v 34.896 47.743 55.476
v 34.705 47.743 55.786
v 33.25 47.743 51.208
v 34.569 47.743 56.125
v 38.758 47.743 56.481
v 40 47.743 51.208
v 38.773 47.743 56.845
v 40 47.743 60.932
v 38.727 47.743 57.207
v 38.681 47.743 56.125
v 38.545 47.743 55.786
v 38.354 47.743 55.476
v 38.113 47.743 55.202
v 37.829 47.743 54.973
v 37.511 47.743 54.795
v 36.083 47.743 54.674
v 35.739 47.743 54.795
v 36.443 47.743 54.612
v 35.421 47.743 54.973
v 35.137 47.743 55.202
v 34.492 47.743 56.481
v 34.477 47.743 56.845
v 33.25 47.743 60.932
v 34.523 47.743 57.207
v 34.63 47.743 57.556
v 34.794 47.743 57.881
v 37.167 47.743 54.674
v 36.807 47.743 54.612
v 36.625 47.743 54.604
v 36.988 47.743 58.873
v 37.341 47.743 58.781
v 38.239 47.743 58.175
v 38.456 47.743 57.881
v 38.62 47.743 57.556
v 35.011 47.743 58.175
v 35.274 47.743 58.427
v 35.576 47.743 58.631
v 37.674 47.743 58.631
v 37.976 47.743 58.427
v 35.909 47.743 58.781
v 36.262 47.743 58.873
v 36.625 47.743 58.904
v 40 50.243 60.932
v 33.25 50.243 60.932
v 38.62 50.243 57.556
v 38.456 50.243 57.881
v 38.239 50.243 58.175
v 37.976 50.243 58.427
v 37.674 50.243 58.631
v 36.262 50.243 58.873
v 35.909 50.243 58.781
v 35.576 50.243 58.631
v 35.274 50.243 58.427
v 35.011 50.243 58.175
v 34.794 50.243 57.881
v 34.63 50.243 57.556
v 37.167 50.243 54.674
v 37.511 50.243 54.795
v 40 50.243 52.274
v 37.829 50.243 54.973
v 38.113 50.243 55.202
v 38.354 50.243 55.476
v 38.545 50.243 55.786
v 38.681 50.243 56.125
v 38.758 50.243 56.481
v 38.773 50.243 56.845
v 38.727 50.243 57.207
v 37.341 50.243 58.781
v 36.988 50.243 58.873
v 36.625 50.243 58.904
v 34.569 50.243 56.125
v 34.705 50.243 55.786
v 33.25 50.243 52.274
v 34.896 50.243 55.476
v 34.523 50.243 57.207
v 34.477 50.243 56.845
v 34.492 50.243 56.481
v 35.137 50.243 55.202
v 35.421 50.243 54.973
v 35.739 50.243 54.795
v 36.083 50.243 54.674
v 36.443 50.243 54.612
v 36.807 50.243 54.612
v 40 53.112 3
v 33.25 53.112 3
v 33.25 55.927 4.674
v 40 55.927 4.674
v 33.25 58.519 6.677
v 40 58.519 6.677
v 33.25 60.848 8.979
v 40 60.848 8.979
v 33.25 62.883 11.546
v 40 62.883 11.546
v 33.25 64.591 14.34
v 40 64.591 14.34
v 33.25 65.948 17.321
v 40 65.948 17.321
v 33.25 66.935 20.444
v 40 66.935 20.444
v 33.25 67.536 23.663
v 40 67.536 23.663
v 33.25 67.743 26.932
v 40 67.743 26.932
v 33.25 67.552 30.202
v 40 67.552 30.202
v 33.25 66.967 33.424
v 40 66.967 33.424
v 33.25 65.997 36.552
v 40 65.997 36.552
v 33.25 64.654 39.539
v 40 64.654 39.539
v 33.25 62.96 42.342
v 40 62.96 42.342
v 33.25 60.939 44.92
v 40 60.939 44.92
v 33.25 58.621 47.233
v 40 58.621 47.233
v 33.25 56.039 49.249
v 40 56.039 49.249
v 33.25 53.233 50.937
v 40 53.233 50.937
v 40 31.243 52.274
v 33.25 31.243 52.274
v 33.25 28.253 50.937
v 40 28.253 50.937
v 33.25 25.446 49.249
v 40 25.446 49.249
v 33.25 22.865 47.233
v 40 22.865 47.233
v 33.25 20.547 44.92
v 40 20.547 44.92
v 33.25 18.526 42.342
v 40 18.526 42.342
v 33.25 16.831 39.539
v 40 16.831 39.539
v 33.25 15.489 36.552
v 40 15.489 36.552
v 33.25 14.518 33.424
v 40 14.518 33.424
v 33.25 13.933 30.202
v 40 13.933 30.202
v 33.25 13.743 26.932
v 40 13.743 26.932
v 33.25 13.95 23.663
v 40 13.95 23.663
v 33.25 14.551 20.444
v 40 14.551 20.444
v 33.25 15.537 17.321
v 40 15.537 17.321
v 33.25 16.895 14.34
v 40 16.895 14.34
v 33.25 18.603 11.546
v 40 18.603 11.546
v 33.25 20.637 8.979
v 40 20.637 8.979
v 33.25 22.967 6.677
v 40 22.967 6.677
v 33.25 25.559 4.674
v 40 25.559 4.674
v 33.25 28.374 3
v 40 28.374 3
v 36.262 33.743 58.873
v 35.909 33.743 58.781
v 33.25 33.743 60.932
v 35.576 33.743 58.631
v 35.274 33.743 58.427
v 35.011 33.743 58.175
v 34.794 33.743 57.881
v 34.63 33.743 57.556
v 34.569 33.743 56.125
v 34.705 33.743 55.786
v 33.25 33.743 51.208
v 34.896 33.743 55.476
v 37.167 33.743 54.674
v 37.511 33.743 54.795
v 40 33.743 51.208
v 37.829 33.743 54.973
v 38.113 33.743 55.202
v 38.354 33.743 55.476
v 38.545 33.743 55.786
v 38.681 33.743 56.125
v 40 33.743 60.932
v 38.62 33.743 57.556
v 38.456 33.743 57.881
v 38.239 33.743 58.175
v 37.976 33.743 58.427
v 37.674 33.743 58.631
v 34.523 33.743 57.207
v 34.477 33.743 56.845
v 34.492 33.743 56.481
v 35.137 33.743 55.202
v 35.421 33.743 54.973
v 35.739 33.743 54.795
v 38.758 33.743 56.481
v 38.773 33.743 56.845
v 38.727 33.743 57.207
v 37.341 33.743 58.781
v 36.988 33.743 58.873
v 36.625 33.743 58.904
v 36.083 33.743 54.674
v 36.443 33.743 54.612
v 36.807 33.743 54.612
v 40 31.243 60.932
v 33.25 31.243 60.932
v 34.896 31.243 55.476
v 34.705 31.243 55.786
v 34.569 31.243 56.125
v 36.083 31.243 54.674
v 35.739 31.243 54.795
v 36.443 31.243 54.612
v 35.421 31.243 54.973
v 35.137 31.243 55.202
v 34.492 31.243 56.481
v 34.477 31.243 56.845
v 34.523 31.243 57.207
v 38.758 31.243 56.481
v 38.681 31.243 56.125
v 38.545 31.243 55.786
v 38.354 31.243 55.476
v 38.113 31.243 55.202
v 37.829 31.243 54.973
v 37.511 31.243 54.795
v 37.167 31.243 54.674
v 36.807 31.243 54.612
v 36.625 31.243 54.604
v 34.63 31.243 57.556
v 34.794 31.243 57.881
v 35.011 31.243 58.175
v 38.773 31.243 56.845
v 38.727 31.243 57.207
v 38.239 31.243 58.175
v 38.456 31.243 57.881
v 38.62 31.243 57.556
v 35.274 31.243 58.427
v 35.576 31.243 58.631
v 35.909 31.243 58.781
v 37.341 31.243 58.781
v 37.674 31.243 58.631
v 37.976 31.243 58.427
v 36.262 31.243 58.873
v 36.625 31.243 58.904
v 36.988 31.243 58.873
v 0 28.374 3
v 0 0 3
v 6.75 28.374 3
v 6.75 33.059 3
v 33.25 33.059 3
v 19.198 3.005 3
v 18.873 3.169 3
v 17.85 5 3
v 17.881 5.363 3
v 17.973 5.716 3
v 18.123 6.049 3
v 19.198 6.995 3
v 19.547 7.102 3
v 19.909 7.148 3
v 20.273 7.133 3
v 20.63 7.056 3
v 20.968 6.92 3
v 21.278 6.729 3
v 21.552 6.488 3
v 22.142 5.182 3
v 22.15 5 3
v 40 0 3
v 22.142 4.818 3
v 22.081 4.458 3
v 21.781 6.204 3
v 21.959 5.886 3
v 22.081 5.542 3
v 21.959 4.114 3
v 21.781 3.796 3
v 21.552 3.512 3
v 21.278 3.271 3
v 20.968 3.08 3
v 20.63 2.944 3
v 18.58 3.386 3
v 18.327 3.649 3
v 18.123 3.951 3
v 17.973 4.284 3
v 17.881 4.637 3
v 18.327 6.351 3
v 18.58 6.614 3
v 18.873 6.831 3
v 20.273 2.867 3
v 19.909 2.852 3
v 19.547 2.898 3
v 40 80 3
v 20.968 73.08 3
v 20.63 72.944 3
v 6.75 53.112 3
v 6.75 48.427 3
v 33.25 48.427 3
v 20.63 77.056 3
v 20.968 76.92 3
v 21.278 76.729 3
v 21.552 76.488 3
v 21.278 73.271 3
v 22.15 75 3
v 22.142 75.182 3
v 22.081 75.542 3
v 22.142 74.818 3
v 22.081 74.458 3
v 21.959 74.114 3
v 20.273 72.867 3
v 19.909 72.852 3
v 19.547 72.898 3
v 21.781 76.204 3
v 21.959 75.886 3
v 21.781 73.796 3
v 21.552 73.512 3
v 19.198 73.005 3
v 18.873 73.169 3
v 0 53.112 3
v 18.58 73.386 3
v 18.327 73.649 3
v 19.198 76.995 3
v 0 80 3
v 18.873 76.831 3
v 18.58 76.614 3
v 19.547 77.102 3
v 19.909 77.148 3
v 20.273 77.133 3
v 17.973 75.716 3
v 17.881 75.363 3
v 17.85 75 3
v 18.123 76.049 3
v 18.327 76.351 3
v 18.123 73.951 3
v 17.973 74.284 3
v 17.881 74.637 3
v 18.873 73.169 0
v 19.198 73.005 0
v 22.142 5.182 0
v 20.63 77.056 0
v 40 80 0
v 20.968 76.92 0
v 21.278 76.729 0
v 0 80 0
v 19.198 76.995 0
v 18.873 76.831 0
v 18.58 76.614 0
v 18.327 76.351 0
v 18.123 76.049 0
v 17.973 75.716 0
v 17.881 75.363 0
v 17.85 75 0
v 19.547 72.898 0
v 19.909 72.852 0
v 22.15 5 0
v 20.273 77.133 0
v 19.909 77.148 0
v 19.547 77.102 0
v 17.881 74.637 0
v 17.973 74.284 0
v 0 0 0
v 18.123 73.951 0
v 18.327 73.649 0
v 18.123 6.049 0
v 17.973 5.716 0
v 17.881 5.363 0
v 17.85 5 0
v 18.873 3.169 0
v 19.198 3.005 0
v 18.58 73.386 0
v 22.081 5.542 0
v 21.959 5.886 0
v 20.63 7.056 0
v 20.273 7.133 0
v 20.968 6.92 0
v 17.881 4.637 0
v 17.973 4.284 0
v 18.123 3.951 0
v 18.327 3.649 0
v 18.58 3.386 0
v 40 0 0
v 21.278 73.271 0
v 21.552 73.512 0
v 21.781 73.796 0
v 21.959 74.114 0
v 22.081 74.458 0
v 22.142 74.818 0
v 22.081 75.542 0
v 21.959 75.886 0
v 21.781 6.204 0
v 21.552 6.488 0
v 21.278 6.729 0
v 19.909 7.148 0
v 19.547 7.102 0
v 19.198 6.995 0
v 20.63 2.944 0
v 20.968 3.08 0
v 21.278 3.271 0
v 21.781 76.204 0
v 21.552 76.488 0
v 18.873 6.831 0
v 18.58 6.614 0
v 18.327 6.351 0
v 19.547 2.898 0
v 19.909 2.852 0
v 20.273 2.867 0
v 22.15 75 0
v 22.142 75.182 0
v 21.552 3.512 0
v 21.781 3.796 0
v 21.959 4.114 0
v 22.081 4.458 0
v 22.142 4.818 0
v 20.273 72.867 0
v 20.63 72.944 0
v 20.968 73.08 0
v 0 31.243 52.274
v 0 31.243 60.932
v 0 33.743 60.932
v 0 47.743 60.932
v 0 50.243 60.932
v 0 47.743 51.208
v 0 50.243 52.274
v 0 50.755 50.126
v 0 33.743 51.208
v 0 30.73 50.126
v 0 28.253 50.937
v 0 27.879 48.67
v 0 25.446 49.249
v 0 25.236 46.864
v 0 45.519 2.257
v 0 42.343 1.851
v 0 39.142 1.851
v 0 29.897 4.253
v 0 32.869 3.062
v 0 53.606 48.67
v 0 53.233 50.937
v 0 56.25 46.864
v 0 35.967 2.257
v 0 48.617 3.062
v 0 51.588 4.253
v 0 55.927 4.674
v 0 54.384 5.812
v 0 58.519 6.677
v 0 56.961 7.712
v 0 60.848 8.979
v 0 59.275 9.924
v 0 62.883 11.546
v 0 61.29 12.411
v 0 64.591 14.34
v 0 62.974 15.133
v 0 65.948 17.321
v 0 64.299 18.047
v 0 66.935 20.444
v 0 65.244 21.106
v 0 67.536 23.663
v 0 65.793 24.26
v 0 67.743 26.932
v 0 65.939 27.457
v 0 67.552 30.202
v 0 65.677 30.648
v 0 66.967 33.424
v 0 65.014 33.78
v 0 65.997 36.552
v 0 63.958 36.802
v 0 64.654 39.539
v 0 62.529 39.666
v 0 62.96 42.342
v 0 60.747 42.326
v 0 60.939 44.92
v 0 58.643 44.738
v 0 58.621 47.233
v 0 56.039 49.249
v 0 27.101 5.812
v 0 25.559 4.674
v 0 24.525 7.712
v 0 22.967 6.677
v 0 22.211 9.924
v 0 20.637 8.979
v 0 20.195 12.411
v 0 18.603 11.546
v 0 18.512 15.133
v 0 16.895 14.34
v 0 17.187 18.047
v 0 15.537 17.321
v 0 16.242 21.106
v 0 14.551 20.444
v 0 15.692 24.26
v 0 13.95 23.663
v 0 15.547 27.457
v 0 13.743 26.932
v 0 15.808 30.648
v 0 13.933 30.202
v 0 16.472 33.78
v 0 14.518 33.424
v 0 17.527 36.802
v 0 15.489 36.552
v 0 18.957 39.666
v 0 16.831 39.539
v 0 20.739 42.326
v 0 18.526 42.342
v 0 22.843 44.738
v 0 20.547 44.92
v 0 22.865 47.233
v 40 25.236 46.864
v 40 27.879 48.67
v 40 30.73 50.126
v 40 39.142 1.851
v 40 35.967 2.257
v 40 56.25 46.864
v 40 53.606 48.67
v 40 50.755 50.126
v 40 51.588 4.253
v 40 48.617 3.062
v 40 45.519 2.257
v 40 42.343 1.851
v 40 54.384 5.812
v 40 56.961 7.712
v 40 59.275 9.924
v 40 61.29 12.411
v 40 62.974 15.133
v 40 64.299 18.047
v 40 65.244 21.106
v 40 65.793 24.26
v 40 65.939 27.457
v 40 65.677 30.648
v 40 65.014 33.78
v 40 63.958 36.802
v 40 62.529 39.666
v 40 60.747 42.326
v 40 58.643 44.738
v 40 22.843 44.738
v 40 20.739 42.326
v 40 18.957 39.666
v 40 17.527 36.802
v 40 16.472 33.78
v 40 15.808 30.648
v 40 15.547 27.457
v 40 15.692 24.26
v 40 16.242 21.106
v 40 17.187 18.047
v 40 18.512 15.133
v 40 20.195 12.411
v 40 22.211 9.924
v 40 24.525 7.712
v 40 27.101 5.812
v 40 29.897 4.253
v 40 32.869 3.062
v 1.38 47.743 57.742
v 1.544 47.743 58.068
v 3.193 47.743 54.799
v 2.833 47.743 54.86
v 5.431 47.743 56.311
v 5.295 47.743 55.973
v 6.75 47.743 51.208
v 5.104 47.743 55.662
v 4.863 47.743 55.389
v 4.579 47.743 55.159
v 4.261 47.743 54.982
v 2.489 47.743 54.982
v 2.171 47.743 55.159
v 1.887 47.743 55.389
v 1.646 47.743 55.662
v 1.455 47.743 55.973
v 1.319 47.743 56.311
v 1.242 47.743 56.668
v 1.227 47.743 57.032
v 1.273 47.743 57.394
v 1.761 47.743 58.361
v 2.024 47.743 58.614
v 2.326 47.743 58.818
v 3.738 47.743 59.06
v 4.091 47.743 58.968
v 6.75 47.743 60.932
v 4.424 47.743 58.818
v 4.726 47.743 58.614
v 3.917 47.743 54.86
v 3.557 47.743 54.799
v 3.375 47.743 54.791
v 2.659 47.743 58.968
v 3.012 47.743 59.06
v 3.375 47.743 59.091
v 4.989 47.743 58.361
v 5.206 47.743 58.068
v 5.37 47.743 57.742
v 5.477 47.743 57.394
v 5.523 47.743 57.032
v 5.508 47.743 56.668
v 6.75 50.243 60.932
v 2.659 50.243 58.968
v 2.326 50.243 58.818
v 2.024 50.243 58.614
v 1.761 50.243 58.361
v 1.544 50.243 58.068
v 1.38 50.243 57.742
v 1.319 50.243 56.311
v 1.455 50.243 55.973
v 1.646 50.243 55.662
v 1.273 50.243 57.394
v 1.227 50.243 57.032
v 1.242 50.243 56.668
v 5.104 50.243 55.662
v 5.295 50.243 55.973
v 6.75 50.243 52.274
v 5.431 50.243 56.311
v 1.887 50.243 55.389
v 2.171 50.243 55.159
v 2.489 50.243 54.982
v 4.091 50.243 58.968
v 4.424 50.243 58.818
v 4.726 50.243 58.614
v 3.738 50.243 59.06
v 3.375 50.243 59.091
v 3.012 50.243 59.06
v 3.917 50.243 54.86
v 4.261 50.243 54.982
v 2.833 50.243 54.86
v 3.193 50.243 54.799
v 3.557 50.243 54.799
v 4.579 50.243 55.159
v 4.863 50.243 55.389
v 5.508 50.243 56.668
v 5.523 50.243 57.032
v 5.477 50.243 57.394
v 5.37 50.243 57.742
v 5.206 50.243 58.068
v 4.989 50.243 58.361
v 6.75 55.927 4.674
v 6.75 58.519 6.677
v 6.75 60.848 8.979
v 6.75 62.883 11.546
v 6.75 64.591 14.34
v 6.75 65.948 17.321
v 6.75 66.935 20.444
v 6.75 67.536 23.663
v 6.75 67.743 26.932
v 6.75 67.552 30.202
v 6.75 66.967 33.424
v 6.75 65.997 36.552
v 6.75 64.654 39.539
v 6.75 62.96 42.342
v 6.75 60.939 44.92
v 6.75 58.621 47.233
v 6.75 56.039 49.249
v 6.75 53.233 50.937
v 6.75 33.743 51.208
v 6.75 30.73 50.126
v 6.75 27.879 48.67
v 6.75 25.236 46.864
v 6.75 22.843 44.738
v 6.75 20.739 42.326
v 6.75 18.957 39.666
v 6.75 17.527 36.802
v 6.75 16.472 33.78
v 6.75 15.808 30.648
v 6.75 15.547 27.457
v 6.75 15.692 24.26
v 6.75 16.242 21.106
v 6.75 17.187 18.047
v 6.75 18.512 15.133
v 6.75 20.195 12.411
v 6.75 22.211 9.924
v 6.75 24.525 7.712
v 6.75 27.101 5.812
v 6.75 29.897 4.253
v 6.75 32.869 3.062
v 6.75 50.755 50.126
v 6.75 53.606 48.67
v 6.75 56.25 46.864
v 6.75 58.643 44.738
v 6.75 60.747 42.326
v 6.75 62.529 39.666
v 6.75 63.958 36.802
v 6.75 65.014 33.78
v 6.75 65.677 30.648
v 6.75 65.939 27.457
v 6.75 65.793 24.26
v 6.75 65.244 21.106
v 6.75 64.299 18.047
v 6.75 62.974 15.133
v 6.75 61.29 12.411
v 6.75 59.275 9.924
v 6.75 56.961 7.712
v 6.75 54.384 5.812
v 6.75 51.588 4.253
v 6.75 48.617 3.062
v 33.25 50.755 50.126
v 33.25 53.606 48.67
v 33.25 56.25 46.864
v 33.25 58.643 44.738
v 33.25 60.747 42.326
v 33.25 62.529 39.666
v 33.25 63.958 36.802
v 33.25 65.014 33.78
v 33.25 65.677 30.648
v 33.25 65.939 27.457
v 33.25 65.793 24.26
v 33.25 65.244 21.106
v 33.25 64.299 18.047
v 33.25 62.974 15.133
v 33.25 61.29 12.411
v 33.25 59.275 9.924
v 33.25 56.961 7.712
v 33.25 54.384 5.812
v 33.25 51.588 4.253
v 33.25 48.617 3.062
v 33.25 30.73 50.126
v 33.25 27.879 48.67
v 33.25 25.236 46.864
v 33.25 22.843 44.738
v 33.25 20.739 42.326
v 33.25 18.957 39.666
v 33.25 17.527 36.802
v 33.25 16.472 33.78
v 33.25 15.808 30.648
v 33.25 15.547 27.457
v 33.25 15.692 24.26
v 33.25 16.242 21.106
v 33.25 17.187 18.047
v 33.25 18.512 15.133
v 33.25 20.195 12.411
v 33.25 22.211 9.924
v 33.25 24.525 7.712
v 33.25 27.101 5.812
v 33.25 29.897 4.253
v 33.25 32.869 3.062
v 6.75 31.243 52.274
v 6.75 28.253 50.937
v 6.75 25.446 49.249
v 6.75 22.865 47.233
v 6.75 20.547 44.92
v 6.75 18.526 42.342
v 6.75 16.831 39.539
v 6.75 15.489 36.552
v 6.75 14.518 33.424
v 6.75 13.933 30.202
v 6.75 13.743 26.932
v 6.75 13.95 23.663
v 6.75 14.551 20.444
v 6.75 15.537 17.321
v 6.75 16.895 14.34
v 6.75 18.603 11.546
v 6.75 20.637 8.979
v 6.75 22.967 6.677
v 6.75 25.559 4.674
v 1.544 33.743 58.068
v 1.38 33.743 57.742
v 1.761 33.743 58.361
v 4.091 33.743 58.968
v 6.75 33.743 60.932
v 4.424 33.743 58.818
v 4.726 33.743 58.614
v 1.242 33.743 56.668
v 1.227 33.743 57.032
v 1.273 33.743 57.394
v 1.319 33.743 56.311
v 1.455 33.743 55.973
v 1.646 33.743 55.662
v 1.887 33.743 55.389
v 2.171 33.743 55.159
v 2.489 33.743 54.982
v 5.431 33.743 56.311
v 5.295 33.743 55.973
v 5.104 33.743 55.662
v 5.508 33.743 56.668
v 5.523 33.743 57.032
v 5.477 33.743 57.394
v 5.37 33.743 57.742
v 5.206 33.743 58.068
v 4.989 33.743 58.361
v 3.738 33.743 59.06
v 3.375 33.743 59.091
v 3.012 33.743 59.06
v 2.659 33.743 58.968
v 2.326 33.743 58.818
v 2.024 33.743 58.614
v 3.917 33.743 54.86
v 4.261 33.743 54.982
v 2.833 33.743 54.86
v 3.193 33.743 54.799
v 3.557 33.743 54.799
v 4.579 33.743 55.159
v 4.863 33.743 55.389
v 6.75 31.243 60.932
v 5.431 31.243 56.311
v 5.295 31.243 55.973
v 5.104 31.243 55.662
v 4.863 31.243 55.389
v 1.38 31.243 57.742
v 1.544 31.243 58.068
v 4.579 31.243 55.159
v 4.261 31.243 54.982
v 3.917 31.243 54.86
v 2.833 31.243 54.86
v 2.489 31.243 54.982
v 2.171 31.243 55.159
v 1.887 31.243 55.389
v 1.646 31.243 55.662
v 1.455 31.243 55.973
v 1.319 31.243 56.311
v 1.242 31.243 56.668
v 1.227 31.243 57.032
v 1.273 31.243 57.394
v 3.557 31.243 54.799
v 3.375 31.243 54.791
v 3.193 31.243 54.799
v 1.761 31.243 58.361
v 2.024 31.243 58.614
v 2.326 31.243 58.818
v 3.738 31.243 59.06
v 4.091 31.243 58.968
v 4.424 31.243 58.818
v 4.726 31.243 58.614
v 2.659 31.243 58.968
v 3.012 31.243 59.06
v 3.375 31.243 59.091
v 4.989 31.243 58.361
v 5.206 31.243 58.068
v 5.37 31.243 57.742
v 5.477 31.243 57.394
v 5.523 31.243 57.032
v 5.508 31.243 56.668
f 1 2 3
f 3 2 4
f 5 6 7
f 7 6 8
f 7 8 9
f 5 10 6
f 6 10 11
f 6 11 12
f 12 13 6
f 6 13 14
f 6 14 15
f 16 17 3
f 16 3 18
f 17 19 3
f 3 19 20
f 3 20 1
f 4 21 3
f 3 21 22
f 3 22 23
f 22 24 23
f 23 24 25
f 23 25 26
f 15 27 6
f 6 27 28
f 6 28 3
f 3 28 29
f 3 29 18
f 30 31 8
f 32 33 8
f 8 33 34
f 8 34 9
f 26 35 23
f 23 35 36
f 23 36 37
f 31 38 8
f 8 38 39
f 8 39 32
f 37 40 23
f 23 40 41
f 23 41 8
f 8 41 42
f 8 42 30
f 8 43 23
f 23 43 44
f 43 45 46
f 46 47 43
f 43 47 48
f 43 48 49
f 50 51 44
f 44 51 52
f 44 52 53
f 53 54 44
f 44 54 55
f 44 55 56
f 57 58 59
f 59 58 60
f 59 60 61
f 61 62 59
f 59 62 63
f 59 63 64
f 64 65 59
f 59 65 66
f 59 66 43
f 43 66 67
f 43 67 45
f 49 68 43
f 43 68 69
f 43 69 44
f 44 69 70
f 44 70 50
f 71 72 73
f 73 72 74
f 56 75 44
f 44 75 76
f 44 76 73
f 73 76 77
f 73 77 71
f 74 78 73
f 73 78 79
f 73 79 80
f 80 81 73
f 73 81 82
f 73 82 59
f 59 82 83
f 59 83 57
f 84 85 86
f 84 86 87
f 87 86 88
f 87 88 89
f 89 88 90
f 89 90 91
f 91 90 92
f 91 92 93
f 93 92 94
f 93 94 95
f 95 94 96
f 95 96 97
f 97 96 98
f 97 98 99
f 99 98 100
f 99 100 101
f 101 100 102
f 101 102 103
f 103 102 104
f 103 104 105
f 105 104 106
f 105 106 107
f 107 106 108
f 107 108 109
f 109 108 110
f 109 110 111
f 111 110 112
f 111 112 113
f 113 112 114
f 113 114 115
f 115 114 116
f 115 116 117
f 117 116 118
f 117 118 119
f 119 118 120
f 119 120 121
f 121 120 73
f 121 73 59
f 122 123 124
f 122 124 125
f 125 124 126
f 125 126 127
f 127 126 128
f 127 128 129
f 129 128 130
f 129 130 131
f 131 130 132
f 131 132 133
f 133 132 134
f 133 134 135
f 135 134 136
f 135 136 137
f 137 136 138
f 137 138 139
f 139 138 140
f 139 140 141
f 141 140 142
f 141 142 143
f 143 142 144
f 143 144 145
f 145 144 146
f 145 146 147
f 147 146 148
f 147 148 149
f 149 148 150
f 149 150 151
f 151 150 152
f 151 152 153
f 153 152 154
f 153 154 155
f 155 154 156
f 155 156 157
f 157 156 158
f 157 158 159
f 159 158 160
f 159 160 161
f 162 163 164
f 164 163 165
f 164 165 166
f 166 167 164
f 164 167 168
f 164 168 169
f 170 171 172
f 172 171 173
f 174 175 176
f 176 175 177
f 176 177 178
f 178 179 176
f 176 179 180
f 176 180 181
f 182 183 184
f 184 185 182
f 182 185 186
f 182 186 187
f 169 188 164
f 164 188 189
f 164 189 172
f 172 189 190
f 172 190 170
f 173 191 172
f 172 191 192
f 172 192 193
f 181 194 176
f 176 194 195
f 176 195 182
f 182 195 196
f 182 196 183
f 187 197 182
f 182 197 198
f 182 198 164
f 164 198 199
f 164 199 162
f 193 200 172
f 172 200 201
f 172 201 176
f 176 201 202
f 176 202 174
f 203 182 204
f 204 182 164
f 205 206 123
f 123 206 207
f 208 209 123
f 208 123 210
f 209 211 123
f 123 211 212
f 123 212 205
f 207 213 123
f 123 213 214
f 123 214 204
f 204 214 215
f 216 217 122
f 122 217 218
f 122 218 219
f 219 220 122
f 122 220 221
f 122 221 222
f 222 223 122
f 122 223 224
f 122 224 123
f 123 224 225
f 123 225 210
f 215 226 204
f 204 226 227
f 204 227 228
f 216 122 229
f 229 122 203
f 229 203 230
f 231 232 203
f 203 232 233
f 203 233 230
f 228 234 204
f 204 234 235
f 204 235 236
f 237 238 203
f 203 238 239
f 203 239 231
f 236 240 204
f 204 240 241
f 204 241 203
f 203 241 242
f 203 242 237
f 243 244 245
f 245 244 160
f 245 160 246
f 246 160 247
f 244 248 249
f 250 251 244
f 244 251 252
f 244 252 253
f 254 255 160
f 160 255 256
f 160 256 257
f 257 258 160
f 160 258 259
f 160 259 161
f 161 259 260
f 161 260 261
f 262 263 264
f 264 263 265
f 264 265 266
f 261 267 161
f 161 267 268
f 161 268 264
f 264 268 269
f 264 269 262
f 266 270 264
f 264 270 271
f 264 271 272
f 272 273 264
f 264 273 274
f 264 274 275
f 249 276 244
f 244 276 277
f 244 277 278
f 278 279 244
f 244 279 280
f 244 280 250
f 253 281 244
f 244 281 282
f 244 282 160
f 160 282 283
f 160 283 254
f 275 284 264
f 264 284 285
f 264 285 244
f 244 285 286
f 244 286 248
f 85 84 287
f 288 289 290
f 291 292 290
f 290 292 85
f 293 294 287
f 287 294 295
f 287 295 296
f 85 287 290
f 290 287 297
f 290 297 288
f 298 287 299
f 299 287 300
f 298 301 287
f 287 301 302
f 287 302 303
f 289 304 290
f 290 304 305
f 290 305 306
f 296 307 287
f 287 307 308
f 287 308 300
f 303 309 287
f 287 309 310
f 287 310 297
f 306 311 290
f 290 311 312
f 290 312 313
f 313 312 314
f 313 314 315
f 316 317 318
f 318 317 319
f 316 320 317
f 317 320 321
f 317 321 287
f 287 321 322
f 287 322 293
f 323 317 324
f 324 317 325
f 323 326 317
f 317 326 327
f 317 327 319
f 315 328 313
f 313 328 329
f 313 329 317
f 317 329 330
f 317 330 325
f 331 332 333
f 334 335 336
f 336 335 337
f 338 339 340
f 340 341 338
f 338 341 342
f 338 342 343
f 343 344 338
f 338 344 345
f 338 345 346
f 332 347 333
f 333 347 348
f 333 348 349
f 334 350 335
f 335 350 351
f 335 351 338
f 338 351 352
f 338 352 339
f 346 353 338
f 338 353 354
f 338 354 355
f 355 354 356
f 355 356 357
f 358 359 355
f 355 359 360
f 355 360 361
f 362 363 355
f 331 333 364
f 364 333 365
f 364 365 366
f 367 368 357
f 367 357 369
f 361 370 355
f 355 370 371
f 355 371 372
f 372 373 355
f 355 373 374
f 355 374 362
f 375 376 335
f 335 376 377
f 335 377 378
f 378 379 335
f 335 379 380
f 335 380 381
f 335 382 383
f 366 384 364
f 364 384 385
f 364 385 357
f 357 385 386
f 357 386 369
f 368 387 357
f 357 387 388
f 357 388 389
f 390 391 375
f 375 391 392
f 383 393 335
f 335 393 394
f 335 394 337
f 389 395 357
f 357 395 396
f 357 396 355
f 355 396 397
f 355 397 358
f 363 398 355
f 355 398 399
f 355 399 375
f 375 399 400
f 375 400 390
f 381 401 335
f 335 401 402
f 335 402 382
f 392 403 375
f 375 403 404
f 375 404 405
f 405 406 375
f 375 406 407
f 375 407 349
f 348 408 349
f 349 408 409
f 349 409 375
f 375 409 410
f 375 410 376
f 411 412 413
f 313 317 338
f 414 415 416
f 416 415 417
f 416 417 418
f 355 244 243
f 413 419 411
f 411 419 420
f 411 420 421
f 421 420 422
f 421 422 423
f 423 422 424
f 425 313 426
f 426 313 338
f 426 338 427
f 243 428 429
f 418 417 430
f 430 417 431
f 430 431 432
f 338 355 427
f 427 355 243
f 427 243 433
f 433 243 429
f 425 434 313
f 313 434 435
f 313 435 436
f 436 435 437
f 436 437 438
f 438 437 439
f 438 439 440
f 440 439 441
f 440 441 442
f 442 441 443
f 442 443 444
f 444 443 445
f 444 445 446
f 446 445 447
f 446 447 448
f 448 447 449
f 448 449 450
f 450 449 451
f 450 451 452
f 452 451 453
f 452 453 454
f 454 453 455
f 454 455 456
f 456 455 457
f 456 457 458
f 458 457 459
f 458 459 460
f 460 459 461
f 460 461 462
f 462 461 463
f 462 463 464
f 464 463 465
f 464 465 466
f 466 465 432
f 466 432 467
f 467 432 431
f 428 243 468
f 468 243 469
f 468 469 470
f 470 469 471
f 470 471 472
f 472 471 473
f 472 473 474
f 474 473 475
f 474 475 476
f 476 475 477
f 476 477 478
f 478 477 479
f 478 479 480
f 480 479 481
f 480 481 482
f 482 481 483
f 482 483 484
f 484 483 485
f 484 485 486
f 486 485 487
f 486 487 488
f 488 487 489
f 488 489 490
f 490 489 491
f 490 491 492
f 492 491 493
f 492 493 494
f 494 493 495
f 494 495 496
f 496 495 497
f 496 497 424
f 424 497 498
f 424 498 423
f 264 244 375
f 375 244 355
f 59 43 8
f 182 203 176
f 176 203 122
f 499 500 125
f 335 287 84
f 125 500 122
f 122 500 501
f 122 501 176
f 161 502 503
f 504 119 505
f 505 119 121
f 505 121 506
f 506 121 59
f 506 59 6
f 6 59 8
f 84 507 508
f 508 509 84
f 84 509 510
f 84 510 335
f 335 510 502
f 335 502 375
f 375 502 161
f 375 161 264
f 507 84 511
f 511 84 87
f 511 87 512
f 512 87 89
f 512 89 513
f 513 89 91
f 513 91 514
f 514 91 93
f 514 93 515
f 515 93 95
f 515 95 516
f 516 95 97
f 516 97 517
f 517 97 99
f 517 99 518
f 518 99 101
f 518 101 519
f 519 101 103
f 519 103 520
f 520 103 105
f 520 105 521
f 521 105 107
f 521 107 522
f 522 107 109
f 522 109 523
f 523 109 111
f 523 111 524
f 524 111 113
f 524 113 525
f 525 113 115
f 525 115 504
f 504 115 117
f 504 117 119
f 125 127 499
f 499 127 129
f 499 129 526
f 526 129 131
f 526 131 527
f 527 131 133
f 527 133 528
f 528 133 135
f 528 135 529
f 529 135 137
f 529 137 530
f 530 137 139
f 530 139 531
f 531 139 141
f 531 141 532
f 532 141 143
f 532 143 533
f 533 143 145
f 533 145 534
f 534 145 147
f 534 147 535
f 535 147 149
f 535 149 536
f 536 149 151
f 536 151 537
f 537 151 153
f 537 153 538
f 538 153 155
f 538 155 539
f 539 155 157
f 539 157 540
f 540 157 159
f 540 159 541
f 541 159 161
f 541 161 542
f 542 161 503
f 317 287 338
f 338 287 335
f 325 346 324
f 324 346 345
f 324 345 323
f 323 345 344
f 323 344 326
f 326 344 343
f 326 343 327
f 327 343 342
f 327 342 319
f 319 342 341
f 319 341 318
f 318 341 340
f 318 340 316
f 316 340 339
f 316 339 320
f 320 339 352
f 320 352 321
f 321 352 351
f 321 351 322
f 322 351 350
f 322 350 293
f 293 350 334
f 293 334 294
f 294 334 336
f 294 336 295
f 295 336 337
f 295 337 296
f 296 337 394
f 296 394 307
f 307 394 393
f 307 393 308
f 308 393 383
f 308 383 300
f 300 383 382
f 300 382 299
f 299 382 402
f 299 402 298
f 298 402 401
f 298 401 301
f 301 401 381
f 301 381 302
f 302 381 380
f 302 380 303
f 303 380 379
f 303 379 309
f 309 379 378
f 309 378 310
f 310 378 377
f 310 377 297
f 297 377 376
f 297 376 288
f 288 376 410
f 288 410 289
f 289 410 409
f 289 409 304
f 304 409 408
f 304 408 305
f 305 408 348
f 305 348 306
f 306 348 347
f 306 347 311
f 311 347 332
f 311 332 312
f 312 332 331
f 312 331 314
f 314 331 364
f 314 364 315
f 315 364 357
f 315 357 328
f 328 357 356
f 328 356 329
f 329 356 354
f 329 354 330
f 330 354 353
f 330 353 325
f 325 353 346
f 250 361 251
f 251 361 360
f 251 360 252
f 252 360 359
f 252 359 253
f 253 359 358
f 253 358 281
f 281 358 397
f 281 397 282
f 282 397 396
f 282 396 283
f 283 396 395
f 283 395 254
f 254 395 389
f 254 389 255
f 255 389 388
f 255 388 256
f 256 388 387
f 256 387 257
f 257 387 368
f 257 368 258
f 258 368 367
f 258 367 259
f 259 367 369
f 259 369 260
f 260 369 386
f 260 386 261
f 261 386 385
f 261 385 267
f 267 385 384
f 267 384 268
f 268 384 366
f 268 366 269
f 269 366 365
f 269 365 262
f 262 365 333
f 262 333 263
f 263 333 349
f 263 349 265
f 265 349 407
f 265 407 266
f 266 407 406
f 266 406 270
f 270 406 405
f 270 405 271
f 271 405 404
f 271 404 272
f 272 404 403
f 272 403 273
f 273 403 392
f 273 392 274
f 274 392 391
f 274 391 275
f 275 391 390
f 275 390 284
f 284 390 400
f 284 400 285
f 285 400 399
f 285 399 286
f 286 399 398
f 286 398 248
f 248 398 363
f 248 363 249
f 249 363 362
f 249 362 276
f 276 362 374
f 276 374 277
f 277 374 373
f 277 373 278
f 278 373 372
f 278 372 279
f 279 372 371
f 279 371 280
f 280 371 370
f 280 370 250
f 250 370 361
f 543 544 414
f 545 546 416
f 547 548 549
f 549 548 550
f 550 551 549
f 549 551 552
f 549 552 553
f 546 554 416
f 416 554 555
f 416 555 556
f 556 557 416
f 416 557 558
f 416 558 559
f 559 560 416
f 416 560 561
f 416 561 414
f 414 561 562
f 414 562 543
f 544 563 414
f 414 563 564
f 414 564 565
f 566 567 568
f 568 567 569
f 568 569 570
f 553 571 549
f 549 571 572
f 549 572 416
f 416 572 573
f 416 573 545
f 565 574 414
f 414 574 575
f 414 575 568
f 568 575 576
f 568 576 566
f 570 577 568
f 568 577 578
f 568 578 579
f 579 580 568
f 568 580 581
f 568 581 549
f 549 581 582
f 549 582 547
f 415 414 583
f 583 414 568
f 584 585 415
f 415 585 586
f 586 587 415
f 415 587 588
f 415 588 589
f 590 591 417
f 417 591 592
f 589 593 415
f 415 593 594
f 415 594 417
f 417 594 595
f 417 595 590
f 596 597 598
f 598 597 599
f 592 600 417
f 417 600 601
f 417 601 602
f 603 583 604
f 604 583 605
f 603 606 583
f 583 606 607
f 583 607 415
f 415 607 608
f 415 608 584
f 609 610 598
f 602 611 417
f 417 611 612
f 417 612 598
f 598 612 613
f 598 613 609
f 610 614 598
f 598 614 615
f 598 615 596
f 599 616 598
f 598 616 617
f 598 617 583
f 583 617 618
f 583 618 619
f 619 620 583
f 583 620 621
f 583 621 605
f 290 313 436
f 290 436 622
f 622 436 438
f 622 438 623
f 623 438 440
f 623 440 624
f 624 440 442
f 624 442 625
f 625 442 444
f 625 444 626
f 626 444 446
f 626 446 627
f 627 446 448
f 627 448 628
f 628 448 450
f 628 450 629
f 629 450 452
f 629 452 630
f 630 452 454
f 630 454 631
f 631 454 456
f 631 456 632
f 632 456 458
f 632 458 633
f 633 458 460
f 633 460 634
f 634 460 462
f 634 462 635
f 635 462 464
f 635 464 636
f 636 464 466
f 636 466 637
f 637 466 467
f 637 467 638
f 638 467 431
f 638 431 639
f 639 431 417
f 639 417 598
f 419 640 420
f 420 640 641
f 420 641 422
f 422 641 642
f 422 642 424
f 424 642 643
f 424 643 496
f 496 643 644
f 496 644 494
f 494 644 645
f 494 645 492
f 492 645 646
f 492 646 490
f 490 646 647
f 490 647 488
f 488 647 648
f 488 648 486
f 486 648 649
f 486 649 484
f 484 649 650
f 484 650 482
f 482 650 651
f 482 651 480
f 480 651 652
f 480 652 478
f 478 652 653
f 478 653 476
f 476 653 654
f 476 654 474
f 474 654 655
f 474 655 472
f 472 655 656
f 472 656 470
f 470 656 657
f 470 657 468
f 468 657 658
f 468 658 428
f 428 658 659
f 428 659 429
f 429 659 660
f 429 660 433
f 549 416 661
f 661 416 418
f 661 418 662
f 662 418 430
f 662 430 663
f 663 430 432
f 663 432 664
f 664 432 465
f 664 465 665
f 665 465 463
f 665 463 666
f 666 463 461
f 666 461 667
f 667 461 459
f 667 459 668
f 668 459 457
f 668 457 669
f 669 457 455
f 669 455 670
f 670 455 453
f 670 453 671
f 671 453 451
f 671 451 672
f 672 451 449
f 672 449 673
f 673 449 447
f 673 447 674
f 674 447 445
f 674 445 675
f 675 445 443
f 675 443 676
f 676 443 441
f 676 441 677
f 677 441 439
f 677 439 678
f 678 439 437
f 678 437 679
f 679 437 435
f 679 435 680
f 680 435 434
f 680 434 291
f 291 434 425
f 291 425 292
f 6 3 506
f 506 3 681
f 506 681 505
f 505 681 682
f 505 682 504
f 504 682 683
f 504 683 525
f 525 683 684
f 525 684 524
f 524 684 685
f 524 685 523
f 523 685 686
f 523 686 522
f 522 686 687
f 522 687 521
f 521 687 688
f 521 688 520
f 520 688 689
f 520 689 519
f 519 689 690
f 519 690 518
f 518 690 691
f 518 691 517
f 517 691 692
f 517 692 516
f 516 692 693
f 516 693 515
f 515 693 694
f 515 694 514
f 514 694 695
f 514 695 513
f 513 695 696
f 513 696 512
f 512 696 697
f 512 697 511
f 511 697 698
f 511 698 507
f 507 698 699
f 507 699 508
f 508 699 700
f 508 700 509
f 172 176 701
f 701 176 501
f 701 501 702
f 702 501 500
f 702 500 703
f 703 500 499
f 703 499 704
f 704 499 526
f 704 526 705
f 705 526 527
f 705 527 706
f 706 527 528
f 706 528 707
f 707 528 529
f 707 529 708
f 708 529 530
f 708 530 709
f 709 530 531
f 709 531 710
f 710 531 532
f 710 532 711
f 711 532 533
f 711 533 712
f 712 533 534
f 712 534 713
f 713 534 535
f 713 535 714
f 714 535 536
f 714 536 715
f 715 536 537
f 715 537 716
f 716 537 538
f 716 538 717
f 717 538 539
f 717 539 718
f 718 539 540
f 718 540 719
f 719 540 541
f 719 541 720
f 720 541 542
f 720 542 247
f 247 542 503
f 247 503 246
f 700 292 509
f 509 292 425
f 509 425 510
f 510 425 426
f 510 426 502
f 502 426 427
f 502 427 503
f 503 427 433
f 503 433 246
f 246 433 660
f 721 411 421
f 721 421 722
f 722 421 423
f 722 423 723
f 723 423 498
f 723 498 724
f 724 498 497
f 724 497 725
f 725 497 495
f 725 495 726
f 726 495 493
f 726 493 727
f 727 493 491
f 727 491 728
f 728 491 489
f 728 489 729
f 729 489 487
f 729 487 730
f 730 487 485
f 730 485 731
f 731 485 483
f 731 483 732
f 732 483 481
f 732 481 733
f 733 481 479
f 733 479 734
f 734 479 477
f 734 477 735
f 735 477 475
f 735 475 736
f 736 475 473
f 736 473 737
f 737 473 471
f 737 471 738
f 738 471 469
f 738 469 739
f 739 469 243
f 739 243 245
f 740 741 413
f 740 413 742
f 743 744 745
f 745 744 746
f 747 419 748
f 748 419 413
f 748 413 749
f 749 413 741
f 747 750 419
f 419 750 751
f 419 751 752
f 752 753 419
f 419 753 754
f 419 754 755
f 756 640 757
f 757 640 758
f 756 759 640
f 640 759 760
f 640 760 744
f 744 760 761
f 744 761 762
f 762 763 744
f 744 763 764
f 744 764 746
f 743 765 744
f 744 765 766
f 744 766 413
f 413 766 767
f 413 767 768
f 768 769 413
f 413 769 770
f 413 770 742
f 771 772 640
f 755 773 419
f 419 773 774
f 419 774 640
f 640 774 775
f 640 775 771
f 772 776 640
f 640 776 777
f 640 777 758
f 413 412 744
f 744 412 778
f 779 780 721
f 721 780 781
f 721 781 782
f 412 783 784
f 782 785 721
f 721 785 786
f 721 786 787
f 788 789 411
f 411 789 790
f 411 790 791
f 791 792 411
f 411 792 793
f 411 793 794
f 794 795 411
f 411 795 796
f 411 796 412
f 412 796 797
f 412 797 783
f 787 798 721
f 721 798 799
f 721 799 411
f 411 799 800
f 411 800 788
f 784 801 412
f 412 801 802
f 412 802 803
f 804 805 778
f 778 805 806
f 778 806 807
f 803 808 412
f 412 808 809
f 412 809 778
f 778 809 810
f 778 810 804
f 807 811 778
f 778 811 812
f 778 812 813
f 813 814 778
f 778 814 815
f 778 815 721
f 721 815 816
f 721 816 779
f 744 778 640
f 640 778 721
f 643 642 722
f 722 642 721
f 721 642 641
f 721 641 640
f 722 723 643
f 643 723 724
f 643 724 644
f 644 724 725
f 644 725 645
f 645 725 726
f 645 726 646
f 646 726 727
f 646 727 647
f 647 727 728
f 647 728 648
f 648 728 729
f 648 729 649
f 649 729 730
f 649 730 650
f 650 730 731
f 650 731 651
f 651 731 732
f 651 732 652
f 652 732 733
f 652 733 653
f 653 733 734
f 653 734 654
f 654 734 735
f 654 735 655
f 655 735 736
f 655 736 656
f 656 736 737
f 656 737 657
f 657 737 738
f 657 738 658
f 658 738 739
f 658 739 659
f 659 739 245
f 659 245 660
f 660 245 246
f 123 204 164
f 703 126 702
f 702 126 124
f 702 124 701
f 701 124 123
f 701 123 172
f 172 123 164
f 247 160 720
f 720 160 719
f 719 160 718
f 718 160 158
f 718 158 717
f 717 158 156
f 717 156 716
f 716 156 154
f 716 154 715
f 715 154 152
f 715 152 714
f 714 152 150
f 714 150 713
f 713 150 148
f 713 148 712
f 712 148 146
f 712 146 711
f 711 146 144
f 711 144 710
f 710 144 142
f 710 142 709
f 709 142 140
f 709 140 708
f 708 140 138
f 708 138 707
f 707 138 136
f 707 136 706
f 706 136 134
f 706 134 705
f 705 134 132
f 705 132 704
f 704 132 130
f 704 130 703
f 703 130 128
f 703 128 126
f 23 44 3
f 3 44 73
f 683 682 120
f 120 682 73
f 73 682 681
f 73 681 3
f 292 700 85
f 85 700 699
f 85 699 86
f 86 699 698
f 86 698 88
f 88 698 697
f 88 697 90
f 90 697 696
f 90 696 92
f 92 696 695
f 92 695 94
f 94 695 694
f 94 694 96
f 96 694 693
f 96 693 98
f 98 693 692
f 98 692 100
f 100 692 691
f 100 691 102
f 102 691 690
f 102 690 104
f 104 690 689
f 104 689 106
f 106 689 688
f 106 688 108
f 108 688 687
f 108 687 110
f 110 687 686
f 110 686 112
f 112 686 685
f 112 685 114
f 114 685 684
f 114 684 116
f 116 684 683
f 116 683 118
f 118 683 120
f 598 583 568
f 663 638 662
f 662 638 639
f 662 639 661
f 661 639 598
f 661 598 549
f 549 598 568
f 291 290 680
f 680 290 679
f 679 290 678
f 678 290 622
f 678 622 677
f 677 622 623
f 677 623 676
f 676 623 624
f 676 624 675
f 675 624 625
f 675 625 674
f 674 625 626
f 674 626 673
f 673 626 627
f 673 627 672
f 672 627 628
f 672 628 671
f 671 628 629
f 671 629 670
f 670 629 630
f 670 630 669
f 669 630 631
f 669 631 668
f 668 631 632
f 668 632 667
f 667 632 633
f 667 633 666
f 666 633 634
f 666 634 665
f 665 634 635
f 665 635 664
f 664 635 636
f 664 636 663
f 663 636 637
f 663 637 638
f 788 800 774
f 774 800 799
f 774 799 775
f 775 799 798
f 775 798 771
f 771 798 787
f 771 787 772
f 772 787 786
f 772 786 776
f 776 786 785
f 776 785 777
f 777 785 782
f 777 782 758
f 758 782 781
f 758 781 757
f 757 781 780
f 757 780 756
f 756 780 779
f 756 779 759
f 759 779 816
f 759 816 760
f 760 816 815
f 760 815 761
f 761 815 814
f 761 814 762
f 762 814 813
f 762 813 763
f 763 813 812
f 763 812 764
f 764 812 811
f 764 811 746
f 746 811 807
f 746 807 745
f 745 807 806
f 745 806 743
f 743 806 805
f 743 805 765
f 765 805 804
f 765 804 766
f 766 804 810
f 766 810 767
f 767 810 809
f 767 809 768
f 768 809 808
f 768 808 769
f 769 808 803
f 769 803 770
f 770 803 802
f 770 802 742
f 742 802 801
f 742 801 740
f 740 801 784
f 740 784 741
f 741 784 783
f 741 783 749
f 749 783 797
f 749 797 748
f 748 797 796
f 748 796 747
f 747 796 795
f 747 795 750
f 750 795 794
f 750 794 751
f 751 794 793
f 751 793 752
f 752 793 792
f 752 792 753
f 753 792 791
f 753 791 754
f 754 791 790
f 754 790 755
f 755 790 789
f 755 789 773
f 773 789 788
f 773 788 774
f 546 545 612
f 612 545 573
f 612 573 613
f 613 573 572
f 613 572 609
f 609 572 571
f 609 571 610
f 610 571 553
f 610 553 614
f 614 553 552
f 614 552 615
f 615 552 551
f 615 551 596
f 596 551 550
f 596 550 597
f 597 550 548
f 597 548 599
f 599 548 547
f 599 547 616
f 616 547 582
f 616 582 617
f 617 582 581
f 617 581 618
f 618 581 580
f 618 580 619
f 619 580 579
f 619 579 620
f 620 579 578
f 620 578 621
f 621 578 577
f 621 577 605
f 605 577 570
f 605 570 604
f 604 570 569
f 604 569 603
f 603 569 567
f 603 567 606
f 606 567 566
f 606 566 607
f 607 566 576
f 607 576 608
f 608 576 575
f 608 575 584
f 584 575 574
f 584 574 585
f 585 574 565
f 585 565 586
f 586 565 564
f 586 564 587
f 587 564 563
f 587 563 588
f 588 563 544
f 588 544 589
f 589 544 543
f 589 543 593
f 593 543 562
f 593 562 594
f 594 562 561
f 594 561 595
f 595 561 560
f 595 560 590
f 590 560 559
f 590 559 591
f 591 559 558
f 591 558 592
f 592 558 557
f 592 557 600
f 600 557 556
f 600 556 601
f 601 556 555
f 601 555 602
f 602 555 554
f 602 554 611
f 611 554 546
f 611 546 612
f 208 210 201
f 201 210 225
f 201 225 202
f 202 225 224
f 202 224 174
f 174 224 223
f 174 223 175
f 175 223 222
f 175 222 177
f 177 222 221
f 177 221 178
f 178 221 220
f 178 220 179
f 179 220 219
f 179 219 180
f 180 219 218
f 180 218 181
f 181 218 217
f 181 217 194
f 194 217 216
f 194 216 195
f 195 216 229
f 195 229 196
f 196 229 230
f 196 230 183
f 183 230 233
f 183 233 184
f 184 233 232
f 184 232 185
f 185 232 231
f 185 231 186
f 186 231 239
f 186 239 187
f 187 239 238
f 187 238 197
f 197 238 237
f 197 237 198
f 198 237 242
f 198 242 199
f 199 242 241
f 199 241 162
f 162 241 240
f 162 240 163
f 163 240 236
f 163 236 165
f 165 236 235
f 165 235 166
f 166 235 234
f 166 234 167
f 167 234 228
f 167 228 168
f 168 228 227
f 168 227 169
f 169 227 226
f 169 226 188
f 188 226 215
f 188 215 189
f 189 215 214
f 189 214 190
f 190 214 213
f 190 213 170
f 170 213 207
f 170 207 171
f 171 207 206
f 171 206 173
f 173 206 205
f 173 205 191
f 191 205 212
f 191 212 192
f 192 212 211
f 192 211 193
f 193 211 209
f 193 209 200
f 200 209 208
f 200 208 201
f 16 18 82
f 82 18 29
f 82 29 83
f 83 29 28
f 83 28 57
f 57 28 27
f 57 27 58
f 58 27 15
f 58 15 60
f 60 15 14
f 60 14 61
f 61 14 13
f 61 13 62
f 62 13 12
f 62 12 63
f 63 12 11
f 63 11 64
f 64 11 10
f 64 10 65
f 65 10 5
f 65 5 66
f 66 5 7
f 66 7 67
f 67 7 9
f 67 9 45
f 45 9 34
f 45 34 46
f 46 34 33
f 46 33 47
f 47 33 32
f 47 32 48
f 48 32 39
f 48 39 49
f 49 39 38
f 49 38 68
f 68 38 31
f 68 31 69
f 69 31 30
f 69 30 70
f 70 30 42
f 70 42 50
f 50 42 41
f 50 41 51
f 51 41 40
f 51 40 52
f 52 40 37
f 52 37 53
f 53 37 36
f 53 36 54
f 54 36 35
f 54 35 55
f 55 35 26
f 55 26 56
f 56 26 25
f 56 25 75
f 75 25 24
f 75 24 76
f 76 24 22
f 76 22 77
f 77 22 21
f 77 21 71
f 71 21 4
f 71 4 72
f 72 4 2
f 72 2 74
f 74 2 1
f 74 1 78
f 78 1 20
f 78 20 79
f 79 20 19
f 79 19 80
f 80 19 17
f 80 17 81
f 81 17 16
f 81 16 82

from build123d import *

# Parameters (mm, degrees)
SKETCH1_W           = 40
SKETCH1_H           = 80
SKETCH1_R           = 2.15
BOSS_EXTRUDE1_DEPTH = 3
BOSS_EXTRUDE2_DEPTH = 40
SKETCH3_R           = 25.2
CUT_EXTRUDE1_DEPTH  = 40
CUT_EXTRUDE2_REACH  = 110.225
SKETCH5_W           = 26.5
SKETCH5_H           = 54
SKETCH6_R           = 2.15
CUT_EXTRUDE3_DEPTH  = 89.527071115
SKETCH7_R           = 2.15
CUT_EXTRUDE4_DEPTH  = 89.527071115


with BuildPart() as part:
    # Sketch1 → Boss-Extrude1 (new body)
    with BuildSketch(Plane.XY):
        with Locations((20, 40)):
            Rectangle(SKETCH1_W, SKETCH1_H)
        with Locations((20, 75)):
            Circle(SKETCH1_R, mode=Mode.SUBTRACT)
        with Locations((20, 5)):
            Circle(SKETCH1_R, mode=Mode.SUBTRACT)
    extrude(amount=BOSS_EXTRUDE1_DEPTH)

    # Sketch2 → Boss-Extrude2 (add)
    with BuildSketch(Plane.ZY):
        with BuildLine():
            Line((51.208263052, 47.742845654), (60.931919228, 47.742845654))
            Line((60.931919228, 47.742845654), (60.931919228, 50.242845654))
            Line((60.931919228, 50.242845654), (52.273503912, 50.242845654))
            ThreePointArc((52.273503912, 50.242845654), (0, 40.742845654), (52.273503912, 31.242845654))
            Line((52.273503912, 31.242845654), (60.931919228, 31.242845654))
            Line((60.931919228, 31.242845654), (60.931919228, 33.742845654))
            Line((60.931919228, 33.742845654), (51.208263052, 33.742845654))
            ThreePointArc((51.208263052, 33.742845654), (1.8, 40.742845654), (51.208263052, 47.742845654))
        make_face()
    extrude(amount=-BOSS_EXTRUDE2_DEPTH)

    # Sketch3 → Cut-Extrude1 (cut)
    with BuildSketch(Plane.ZY):
        with Locations((27, 40.742845654)):
            Circle(SKETCH3_R)
    extrude(amount=-CUT_EXTRUDE1_DEPTH, mode=Mode.SUBTRACT)

    # Cut-Extrude2: up to this face of the body (flat: up to its plane)
    cut_extrude2_end = Plane(part.part.faces().sort_by_distance((20, 66.440507587, 3))[0])
    # Sketch5 → Cut-Extrude2 (cut, up to the picked face)
    with BuildSketch(Plane.XY.offset(60.931919228), mode=Mode.PRIVATE) as cut_extrude2_sk1:
        with Locations((20, 40.742845654)):
            Rectangle(SKETCH5_W, SKETCH5_H)
    cut_extrude2_tool1 = split(extrude(cut_extrude2_sk1.sketch, amount=-CUT_EXTRUDE2_REACH, mode=Mode.PRIVATE), bisect_by=cut_extrude2_end, keep=Keep.BOTH, mode=Mode.PRIVATE)
    add(cut_extrude2_tool1.solids().sort_by(Axis((20, 40.742846, 60.931919), (0, 0, -1)))[0], mode=Mode.SUBTRACT)

    # Sketch6 → Cut-Extrude3 (cut, through all)
    with BuildSketch(Plane(origin=(0, 50.242845654, 0), x_dir=(1, 0, 0), z_dir=(0, 1, 0))):
        with Locations(Location((3.375, -56.940793842, 0), (0, 0, 270))):
            Circle(SKETCH6_R)
        with Locations((21.625, -56.940793842)):
            Circle(SKETCH6_R)
    extrude(amount=-CUT_EXTRUDE3_DEPTH, mode=Mode.SUBTRACT)

    # Sketch7 → Cut-Extrude4 (cut, through all)
    with BuildSketch(Plane(origin=(0, 50.242845654, 0), x_dir=(1, 0, 0), z_dir=(0, 1, 0))):
        with Locations(Location((36.625, -56.75422316, 0), (0, 0, 270))):
            Circle(SKETCH7_R)
    extrude(amount=-CUT_EXTRUDE4_DEPTH, mode=Mode.SUBTRACT)


solid = part.part
